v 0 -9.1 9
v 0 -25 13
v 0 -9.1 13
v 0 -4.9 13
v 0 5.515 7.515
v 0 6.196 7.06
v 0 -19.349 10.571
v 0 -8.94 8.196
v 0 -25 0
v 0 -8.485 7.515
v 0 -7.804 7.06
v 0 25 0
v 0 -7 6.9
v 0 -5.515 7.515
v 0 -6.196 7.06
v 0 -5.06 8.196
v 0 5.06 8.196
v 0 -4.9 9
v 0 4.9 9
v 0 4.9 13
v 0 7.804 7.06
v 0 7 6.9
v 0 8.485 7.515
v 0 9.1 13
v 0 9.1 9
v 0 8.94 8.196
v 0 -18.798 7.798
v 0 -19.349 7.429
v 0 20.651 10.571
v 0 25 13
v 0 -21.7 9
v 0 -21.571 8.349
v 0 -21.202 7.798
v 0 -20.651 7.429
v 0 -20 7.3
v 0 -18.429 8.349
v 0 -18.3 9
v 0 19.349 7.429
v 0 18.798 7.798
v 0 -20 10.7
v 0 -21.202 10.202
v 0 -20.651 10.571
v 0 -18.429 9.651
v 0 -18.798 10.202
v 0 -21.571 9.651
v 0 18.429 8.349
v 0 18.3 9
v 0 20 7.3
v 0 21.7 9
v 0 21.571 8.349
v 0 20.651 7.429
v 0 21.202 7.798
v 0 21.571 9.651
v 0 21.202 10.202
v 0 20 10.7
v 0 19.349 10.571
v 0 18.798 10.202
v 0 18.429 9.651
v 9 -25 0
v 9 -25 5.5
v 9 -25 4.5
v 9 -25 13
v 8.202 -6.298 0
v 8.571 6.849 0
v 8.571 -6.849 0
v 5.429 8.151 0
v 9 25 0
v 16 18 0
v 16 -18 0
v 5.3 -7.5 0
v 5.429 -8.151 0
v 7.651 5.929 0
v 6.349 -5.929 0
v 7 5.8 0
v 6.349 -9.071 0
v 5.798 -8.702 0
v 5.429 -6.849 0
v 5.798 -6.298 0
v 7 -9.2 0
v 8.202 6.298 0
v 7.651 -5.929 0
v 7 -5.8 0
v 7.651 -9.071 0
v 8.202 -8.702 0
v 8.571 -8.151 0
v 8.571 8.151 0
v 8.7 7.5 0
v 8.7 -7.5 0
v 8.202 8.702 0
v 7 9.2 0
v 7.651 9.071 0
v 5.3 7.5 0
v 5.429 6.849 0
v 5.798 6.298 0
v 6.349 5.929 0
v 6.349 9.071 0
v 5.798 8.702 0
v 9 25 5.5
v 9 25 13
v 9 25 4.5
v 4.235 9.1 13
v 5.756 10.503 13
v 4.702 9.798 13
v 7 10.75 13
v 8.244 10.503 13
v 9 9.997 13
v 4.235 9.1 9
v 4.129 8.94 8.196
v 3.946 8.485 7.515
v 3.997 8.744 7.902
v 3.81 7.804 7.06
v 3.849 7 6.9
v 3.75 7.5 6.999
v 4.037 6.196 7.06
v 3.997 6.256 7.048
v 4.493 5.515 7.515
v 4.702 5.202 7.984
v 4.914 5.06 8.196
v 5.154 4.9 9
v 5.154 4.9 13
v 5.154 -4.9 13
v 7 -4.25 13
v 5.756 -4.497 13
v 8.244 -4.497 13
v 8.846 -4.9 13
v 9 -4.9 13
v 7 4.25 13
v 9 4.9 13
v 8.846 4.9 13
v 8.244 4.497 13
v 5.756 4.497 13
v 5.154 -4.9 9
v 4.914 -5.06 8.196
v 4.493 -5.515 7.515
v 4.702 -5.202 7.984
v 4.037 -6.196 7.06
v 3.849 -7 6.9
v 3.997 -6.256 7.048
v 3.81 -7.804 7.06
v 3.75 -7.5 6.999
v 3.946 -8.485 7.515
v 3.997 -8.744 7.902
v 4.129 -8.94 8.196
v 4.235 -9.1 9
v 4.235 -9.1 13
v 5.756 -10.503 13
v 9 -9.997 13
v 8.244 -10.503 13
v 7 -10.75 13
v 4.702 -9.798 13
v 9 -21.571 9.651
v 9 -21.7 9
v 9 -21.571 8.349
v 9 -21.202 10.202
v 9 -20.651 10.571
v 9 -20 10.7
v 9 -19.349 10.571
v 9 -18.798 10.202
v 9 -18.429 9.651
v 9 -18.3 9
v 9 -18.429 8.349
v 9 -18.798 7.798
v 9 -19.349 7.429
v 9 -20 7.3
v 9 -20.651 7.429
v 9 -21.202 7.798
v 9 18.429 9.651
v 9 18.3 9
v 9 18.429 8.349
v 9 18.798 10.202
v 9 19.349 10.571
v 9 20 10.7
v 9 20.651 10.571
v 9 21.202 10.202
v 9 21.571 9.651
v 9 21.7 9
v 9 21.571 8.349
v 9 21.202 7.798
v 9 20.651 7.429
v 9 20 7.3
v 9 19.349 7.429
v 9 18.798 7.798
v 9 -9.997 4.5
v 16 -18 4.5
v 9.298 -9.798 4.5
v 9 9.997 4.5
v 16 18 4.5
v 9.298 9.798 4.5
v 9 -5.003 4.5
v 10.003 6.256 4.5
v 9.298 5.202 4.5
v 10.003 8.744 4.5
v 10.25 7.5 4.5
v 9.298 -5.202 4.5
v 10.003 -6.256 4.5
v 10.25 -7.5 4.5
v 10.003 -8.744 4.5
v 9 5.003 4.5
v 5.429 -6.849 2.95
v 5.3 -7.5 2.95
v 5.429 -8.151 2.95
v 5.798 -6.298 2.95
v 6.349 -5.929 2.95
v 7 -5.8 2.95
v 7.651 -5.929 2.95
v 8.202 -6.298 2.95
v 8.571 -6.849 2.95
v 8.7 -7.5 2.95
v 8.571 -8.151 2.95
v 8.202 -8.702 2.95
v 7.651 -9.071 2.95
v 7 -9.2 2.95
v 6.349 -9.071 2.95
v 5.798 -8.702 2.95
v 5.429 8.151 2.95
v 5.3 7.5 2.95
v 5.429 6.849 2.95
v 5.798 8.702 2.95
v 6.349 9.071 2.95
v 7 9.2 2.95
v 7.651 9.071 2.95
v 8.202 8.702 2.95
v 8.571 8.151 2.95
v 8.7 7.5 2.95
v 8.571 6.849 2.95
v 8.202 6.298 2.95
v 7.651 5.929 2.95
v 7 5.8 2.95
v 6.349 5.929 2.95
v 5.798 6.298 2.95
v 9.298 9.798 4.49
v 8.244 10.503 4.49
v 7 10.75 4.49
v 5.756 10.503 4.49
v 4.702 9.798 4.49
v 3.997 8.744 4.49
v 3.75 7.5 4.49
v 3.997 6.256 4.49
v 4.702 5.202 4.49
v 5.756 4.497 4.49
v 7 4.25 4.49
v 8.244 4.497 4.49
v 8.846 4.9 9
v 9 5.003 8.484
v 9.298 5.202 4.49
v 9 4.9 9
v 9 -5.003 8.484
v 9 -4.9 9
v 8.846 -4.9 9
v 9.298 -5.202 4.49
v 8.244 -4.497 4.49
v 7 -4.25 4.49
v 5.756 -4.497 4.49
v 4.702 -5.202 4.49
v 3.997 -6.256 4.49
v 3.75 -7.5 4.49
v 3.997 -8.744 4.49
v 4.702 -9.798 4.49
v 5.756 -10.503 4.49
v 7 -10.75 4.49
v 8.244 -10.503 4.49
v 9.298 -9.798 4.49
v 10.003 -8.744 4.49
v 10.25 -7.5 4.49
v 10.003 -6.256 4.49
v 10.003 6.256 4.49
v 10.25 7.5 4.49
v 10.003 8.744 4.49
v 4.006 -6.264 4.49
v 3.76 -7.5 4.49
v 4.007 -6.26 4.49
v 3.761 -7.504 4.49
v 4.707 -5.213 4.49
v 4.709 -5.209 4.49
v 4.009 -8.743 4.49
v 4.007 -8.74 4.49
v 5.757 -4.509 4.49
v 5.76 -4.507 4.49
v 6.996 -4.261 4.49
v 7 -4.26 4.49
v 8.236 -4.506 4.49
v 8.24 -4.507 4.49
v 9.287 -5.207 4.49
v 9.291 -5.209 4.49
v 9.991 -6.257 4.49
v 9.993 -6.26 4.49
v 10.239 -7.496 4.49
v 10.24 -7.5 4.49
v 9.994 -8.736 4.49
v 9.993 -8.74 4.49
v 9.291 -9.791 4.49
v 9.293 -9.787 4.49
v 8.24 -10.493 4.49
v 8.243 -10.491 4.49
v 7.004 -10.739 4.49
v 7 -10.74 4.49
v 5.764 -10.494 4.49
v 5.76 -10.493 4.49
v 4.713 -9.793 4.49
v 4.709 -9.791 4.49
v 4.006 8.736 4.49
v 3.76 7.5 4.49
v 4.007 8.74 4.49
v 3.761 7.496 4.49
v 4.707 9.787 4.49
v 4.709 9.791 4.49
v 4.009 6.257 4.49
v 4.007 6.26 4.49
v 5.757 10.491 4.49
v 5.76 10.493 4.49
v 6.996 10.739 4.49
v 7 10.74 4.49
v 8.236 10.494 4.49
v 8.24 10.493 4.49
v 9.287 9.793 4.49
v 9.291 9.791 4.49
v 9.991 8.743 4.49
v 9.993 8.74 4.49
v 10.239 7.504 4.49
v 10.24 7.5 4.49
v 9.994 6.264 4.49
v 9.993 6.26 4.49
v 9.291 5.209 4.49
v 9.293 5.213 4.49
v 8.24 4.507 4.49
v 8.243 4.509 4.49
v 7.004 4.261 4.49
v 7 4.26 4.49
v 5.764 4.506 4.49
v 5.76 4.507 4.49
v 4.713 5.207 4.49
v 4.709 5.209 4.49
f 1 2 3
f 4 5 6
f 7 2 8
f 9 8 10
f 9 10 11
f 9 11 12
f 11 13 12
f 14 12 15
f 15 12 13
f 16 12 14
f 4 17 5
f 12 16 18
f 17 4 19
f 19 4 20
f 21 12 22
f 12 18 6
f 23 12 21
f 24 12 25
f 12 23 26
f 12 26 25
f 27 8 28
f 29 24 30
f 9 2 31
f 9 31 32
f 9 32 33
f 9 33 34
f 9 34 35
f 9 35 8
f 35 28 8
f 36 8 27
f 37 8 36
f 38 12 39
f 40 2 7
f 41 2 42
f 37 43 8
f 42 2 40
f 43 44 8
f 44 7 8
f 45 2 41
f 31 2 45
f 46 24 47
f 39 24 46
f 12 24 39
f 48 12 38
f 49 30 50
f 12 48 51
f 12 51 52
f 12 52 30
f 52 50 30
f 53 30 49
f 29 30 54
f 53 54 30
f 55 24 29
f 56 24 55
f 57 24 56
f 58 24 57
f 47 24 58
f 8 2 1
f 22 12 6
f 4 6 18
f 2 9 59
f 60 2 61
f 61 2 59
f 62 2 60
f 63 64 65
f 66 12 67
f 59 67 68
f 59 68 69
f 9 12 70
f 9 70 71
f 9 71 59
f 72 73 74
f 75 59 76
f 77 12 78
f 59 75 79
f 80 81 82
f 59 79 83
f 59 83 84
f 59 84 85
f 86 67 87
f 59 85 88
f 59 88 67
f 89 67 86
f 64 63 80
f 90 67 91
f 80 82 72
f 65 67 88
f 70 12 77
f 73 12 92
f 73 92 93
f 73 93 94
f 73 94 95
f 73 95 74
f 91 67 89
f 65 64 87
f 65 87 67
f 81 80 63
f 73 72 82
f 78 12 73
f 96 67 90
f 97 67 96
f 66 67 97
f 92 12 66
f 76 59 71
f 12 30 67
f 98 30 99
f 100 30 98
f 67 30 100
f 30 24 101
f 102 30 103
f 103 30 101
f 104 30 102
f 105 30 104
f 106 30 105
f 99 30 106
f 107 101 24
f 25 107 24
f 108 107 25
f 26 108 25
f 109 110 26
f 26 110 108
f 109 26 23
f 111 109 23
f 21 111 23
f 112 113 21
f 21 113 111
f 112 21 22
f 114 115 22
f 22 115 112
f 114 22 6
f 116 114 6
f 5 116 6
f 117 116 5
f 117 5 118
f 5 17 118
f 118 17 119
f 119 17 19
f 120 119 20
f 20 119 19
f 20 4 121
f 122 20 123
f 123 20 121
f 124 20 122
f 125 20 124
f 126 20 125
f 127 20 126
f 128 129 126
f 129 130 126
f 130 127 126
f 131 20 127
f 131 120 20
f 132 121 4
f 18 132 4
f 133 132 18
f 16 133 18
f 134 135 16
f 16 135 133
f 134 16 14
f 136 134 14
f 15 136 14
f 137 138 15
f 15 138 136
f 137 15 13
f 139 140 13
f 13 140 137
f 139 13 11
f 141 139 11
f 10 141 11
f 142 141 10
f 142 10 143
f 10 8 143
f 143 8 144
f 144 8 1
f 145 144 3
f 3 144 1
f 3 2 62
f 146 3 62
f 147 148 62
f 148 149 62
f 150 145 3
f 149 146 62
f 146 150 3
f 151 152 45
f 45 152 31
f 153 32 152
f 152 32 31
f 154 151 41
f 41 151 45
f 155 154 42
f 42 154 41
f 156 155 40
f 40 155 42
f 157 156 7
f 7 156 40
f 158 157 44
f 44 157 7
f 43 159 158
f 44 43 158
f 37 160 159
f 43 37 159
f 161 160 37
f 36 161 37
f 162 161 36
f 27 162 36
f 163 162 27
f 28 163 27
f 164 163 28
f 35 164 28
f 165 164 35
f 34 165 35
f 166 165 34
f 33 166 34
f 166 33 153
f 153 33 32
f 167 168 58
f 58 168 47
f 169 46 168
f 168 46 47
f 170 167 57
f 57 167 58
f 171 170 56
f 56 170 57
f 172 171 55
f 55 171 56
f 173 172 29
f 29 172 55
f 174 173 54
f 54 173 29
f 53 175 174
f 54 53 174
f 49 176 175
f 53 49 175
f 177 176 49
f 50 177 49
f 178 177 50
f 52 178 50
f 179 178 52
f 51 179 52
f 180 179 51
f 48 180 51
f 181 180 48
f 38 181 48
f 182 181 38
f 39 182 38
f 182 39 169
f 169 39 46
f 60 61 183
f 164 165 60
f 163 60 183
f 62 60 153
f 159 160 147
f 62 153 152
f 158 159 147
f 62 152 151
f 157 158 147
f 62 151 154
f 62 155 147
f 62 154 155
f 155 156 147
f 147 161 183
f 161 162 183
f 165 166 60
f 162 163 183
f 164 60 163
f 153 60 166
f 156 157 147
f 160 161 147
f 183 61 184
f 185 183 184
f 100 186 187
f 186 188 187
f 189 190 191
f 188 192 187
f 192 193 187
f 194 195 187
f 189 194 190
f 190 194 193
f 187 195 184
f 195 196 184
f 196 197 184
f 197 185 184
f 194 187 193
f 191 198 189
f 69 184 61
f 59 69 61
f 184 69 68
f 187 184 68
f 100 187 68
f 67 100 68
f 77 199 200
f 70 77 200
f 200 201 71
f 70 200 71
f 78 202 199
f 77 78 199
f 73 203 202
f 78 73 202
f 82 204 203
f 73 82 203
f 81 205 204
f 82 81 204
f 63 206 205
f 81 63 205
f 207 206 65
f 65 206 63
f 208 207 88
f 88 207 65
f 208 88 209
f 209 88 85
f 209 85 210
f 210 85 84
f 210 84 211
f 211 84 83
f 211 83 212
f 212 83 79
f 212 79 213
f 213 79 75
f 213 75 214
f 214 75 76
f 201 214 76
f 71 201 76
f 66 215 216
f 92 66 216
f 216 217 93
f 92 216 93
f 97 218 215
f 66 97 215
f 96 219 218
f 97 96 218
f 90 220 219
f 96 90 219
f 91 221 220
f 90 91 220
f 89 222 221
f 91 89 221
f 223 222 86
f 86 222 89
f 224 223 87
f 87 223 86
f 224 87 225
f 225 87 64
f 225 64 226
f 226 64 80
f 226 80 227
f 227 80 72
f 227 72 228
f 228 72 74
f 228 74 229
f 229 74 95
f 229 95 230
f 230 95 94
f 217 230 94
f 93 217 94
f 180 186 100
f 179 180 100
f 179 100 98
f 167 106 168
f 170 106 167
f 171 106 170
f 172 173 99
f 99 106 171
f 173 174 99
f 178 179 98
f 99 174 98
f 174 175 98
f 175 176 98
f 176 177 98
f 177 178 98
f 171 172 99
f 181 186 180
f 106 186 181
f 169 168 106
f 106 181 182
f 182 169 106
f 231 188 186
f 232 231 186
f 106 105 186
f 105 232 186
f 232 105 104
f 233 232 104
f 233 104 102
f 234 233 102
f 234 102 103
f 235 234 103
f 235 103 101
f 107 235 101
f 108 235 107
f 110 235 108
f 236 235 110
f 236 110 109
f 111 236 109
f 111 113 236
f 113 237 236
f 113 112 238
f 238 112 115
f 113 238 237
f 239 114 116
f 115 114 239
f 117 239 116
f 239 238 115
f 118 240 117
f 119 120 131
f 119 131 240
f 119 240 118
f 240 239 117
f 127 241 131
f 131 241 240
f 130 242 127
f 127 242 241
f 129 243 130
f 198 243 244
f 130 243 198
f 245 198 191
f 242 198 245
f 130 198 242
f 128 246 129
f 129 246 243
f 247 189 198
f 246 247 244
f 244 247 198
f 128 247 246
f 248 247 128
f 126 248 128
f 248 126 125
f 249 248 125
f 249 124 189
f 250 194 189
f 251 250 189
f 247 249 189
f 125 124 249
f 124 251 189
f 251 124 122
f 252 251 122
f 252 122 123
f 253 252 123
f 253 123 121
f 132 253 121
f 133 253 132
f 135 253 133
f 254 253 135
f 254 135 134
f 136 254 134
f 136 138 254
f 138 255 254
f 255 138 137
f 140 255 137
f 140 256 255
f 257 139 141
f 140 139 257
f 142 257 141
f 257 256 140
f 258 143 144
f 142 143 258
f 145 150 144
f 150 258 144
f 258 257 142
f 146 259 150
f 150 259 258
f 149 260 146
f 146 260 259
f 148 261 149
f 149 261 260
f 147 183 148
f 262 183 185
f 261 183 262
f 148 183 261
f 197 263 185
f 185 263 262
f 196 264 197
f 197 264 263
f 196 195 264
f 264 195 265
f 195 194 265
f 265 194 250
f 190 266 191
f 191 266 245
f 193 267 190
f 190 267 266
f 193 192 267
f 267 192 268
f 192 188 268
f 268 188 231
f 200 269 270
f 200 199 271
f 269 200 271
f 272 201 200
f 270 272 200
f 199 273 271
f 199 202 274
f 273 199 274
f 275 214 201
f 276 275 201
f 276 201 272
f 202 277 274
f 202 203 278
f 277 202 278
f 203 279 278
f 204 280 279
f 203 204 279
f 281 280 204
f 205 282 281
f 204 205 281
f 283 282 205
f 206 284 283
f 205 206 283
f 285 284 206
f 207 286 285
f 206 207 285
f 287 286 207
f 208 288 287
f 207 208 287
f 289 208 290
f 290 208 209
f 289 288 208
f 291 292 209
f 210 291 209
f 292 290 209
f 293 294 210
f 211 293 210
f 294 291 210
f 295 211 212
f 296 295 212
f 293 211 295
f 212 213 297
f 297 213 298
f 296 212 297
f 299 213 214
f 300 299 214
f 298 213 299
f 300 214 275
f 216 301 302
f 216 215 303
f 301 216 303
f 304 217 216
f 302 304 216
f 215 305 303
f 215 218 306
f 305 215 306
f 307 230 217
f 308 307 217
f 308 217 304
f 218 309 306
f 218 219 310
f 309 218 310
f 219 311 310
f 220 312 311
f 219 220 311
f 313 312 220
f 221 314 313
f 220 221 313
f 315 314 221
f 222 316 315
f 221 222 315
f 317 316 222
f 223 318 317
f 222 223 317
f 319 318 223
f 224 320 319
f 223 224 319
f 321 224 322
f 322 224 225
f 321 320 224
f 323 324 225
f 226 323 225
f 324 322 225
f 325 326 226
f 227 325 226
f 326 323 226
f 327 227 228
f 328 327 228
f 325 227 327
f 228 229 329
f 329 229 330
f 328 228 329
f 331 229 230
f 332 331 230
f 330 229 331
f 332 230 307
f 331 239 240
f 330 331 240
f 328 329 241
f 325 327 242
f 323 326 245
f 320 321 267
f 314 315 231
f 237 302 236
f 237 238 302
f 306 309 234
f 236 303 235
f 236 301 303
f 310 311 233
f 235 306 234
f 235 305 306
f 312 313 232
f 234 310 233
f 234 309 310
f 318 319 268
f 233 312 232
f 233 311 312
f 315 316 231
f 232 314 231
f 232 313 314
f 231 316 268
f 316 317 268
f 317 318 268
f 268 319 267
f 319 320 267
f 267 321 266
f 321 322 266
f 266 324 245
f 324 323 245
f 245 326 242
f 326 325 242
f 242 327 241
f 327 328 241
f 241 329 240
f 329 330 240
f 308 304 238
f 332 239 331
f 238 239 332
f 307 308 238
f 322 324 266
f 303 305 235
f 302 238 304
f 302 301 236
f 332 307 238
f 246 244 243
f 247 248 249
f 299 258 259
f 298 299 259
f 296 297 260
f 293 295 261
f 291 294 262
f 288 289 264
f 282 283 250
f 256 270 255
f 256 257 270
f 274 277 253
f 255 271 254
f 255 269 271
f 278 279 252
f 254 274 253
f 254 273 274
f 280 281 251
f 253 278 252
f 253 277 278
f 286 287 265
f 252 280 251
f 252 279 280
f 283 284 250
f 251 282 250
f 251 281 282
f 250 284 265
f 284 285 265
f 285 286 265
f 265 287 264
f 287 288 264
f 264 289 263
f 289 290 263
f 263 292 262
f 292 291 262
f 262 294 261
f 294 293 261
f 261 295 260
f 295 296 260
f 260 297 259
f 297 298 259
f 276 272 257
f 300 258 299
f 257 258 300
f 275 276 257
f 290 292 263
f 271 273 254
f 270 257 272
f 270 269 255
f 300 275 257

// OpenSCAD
// Ormerod nozzle mount

numNozzles = 2;				// how many nozzles (must be 1 or 2)
nozzleSeparation2n = 14;	// spacing between nozzles, if more than one
width2n = 50;
nozzleScrewHoleSeparation2n = 40;
width1n = 38;
nozzleScrewHoleSeparation1n = 15;
nozzleScrewHoleOffset = 9;
fullDepth = 16;
mainDepth = 9;
height = 13;
smallHeight = 4.5;
xCarriageScrewHoleOffset = 7;
xCarriageScrewHoleSeparation = 15;
m3clearance = 3.4;
m3head = 6.5;
bowdenClearance = 4.2;

overlap = 1;
tinyOverlap = 0.01;
lots = 50;

width = (numNozzles == 2) ? width2n : width1n;
nozzleScrewHoleSeparation = (numNozzles == 2) 
									? nozzleScrewHoleSeparation2n : nozzleScrewHoleSeparation1n;

module xCarriageScrewHole() {
	translate([0,0,-overlap]) cylinder(r=m3clearance/2,h=height+2*overlap,$fn=16);
	translate([0,0,smallHeight-tinyOverlap]) cylinder(r=m3head/2,h=height+2*overlap,$fn=16);
	translate([0,0,smallHeight-(m3head-m3clearance)/2])
		cylinder(r1=m3clearance/2,r2=m3head/2,h=(m3head - m3clearance)/2,$fn=16);
}

module bowdenSlot() {
	translate([-overlap,0,0])
		union () {
			rotate([0,90,0]) cylinder(r=bowdenClearance/2,h=mainDepth + 2*overlap, $fn=16);
			translate([0,-bowdenClearance/2,0])
				cube([mainDepth + 2*overlap,bowdenClearance,lots]);
		}
}

difference () {
	translate([0,-width/2,0])
		union () {
 			cube([fullDepth,width,smallHeight]);
			cube([mainDepth,width,height]);
		}
	translate([mainDepth,-width/2,-overlap])
		rotate([0,0,-45]) cube([20,20,smallHeight+2*overlap]);
	translate([mainDepth,width/2,-overlap])
		rotate([0,0,-45]) cube([20,20,smallHeight+2*overlap]);
	translate([xCarriageScrewHoleOffset,xCarriageScrewHoleSeparation/2,0])
		xCarriageScrewHole();
	translate([xCarriageScrewHoleOffset,-xCarriageScrewHoleSeparation/2,0])
		xCarriageScrewHole();
	translate([-overlap,-nozzleScrewHoleSeparation/2,nozzleScrewHoleOffset])
		rotate([0,90,0]) cylinder(r=m3clearance/2,h=mainDepth + 2*overlap, $fn=16);
	translate([-overlap,nozzleScrewHoleSeparation/2,nozzleScrewHoleOffset])
		rotate([0,90,0]) cylinder(r=m3clearance/2,h=mainDepth + 2*overlap, $fn=16);
	if (numNozzles == 2) {
		translate([0,-nozzleSeparation2n/2,nozzleScrewHoleOffset]) bowdenSlot();
		translate([0,nozzleSeparation2n/2,nozzleScrewHoleOffset]) bowdenSlot();
	} else {
		translate([0,0,nozzleScrewHoleOffset]) bowdenSlot();
	}
}
